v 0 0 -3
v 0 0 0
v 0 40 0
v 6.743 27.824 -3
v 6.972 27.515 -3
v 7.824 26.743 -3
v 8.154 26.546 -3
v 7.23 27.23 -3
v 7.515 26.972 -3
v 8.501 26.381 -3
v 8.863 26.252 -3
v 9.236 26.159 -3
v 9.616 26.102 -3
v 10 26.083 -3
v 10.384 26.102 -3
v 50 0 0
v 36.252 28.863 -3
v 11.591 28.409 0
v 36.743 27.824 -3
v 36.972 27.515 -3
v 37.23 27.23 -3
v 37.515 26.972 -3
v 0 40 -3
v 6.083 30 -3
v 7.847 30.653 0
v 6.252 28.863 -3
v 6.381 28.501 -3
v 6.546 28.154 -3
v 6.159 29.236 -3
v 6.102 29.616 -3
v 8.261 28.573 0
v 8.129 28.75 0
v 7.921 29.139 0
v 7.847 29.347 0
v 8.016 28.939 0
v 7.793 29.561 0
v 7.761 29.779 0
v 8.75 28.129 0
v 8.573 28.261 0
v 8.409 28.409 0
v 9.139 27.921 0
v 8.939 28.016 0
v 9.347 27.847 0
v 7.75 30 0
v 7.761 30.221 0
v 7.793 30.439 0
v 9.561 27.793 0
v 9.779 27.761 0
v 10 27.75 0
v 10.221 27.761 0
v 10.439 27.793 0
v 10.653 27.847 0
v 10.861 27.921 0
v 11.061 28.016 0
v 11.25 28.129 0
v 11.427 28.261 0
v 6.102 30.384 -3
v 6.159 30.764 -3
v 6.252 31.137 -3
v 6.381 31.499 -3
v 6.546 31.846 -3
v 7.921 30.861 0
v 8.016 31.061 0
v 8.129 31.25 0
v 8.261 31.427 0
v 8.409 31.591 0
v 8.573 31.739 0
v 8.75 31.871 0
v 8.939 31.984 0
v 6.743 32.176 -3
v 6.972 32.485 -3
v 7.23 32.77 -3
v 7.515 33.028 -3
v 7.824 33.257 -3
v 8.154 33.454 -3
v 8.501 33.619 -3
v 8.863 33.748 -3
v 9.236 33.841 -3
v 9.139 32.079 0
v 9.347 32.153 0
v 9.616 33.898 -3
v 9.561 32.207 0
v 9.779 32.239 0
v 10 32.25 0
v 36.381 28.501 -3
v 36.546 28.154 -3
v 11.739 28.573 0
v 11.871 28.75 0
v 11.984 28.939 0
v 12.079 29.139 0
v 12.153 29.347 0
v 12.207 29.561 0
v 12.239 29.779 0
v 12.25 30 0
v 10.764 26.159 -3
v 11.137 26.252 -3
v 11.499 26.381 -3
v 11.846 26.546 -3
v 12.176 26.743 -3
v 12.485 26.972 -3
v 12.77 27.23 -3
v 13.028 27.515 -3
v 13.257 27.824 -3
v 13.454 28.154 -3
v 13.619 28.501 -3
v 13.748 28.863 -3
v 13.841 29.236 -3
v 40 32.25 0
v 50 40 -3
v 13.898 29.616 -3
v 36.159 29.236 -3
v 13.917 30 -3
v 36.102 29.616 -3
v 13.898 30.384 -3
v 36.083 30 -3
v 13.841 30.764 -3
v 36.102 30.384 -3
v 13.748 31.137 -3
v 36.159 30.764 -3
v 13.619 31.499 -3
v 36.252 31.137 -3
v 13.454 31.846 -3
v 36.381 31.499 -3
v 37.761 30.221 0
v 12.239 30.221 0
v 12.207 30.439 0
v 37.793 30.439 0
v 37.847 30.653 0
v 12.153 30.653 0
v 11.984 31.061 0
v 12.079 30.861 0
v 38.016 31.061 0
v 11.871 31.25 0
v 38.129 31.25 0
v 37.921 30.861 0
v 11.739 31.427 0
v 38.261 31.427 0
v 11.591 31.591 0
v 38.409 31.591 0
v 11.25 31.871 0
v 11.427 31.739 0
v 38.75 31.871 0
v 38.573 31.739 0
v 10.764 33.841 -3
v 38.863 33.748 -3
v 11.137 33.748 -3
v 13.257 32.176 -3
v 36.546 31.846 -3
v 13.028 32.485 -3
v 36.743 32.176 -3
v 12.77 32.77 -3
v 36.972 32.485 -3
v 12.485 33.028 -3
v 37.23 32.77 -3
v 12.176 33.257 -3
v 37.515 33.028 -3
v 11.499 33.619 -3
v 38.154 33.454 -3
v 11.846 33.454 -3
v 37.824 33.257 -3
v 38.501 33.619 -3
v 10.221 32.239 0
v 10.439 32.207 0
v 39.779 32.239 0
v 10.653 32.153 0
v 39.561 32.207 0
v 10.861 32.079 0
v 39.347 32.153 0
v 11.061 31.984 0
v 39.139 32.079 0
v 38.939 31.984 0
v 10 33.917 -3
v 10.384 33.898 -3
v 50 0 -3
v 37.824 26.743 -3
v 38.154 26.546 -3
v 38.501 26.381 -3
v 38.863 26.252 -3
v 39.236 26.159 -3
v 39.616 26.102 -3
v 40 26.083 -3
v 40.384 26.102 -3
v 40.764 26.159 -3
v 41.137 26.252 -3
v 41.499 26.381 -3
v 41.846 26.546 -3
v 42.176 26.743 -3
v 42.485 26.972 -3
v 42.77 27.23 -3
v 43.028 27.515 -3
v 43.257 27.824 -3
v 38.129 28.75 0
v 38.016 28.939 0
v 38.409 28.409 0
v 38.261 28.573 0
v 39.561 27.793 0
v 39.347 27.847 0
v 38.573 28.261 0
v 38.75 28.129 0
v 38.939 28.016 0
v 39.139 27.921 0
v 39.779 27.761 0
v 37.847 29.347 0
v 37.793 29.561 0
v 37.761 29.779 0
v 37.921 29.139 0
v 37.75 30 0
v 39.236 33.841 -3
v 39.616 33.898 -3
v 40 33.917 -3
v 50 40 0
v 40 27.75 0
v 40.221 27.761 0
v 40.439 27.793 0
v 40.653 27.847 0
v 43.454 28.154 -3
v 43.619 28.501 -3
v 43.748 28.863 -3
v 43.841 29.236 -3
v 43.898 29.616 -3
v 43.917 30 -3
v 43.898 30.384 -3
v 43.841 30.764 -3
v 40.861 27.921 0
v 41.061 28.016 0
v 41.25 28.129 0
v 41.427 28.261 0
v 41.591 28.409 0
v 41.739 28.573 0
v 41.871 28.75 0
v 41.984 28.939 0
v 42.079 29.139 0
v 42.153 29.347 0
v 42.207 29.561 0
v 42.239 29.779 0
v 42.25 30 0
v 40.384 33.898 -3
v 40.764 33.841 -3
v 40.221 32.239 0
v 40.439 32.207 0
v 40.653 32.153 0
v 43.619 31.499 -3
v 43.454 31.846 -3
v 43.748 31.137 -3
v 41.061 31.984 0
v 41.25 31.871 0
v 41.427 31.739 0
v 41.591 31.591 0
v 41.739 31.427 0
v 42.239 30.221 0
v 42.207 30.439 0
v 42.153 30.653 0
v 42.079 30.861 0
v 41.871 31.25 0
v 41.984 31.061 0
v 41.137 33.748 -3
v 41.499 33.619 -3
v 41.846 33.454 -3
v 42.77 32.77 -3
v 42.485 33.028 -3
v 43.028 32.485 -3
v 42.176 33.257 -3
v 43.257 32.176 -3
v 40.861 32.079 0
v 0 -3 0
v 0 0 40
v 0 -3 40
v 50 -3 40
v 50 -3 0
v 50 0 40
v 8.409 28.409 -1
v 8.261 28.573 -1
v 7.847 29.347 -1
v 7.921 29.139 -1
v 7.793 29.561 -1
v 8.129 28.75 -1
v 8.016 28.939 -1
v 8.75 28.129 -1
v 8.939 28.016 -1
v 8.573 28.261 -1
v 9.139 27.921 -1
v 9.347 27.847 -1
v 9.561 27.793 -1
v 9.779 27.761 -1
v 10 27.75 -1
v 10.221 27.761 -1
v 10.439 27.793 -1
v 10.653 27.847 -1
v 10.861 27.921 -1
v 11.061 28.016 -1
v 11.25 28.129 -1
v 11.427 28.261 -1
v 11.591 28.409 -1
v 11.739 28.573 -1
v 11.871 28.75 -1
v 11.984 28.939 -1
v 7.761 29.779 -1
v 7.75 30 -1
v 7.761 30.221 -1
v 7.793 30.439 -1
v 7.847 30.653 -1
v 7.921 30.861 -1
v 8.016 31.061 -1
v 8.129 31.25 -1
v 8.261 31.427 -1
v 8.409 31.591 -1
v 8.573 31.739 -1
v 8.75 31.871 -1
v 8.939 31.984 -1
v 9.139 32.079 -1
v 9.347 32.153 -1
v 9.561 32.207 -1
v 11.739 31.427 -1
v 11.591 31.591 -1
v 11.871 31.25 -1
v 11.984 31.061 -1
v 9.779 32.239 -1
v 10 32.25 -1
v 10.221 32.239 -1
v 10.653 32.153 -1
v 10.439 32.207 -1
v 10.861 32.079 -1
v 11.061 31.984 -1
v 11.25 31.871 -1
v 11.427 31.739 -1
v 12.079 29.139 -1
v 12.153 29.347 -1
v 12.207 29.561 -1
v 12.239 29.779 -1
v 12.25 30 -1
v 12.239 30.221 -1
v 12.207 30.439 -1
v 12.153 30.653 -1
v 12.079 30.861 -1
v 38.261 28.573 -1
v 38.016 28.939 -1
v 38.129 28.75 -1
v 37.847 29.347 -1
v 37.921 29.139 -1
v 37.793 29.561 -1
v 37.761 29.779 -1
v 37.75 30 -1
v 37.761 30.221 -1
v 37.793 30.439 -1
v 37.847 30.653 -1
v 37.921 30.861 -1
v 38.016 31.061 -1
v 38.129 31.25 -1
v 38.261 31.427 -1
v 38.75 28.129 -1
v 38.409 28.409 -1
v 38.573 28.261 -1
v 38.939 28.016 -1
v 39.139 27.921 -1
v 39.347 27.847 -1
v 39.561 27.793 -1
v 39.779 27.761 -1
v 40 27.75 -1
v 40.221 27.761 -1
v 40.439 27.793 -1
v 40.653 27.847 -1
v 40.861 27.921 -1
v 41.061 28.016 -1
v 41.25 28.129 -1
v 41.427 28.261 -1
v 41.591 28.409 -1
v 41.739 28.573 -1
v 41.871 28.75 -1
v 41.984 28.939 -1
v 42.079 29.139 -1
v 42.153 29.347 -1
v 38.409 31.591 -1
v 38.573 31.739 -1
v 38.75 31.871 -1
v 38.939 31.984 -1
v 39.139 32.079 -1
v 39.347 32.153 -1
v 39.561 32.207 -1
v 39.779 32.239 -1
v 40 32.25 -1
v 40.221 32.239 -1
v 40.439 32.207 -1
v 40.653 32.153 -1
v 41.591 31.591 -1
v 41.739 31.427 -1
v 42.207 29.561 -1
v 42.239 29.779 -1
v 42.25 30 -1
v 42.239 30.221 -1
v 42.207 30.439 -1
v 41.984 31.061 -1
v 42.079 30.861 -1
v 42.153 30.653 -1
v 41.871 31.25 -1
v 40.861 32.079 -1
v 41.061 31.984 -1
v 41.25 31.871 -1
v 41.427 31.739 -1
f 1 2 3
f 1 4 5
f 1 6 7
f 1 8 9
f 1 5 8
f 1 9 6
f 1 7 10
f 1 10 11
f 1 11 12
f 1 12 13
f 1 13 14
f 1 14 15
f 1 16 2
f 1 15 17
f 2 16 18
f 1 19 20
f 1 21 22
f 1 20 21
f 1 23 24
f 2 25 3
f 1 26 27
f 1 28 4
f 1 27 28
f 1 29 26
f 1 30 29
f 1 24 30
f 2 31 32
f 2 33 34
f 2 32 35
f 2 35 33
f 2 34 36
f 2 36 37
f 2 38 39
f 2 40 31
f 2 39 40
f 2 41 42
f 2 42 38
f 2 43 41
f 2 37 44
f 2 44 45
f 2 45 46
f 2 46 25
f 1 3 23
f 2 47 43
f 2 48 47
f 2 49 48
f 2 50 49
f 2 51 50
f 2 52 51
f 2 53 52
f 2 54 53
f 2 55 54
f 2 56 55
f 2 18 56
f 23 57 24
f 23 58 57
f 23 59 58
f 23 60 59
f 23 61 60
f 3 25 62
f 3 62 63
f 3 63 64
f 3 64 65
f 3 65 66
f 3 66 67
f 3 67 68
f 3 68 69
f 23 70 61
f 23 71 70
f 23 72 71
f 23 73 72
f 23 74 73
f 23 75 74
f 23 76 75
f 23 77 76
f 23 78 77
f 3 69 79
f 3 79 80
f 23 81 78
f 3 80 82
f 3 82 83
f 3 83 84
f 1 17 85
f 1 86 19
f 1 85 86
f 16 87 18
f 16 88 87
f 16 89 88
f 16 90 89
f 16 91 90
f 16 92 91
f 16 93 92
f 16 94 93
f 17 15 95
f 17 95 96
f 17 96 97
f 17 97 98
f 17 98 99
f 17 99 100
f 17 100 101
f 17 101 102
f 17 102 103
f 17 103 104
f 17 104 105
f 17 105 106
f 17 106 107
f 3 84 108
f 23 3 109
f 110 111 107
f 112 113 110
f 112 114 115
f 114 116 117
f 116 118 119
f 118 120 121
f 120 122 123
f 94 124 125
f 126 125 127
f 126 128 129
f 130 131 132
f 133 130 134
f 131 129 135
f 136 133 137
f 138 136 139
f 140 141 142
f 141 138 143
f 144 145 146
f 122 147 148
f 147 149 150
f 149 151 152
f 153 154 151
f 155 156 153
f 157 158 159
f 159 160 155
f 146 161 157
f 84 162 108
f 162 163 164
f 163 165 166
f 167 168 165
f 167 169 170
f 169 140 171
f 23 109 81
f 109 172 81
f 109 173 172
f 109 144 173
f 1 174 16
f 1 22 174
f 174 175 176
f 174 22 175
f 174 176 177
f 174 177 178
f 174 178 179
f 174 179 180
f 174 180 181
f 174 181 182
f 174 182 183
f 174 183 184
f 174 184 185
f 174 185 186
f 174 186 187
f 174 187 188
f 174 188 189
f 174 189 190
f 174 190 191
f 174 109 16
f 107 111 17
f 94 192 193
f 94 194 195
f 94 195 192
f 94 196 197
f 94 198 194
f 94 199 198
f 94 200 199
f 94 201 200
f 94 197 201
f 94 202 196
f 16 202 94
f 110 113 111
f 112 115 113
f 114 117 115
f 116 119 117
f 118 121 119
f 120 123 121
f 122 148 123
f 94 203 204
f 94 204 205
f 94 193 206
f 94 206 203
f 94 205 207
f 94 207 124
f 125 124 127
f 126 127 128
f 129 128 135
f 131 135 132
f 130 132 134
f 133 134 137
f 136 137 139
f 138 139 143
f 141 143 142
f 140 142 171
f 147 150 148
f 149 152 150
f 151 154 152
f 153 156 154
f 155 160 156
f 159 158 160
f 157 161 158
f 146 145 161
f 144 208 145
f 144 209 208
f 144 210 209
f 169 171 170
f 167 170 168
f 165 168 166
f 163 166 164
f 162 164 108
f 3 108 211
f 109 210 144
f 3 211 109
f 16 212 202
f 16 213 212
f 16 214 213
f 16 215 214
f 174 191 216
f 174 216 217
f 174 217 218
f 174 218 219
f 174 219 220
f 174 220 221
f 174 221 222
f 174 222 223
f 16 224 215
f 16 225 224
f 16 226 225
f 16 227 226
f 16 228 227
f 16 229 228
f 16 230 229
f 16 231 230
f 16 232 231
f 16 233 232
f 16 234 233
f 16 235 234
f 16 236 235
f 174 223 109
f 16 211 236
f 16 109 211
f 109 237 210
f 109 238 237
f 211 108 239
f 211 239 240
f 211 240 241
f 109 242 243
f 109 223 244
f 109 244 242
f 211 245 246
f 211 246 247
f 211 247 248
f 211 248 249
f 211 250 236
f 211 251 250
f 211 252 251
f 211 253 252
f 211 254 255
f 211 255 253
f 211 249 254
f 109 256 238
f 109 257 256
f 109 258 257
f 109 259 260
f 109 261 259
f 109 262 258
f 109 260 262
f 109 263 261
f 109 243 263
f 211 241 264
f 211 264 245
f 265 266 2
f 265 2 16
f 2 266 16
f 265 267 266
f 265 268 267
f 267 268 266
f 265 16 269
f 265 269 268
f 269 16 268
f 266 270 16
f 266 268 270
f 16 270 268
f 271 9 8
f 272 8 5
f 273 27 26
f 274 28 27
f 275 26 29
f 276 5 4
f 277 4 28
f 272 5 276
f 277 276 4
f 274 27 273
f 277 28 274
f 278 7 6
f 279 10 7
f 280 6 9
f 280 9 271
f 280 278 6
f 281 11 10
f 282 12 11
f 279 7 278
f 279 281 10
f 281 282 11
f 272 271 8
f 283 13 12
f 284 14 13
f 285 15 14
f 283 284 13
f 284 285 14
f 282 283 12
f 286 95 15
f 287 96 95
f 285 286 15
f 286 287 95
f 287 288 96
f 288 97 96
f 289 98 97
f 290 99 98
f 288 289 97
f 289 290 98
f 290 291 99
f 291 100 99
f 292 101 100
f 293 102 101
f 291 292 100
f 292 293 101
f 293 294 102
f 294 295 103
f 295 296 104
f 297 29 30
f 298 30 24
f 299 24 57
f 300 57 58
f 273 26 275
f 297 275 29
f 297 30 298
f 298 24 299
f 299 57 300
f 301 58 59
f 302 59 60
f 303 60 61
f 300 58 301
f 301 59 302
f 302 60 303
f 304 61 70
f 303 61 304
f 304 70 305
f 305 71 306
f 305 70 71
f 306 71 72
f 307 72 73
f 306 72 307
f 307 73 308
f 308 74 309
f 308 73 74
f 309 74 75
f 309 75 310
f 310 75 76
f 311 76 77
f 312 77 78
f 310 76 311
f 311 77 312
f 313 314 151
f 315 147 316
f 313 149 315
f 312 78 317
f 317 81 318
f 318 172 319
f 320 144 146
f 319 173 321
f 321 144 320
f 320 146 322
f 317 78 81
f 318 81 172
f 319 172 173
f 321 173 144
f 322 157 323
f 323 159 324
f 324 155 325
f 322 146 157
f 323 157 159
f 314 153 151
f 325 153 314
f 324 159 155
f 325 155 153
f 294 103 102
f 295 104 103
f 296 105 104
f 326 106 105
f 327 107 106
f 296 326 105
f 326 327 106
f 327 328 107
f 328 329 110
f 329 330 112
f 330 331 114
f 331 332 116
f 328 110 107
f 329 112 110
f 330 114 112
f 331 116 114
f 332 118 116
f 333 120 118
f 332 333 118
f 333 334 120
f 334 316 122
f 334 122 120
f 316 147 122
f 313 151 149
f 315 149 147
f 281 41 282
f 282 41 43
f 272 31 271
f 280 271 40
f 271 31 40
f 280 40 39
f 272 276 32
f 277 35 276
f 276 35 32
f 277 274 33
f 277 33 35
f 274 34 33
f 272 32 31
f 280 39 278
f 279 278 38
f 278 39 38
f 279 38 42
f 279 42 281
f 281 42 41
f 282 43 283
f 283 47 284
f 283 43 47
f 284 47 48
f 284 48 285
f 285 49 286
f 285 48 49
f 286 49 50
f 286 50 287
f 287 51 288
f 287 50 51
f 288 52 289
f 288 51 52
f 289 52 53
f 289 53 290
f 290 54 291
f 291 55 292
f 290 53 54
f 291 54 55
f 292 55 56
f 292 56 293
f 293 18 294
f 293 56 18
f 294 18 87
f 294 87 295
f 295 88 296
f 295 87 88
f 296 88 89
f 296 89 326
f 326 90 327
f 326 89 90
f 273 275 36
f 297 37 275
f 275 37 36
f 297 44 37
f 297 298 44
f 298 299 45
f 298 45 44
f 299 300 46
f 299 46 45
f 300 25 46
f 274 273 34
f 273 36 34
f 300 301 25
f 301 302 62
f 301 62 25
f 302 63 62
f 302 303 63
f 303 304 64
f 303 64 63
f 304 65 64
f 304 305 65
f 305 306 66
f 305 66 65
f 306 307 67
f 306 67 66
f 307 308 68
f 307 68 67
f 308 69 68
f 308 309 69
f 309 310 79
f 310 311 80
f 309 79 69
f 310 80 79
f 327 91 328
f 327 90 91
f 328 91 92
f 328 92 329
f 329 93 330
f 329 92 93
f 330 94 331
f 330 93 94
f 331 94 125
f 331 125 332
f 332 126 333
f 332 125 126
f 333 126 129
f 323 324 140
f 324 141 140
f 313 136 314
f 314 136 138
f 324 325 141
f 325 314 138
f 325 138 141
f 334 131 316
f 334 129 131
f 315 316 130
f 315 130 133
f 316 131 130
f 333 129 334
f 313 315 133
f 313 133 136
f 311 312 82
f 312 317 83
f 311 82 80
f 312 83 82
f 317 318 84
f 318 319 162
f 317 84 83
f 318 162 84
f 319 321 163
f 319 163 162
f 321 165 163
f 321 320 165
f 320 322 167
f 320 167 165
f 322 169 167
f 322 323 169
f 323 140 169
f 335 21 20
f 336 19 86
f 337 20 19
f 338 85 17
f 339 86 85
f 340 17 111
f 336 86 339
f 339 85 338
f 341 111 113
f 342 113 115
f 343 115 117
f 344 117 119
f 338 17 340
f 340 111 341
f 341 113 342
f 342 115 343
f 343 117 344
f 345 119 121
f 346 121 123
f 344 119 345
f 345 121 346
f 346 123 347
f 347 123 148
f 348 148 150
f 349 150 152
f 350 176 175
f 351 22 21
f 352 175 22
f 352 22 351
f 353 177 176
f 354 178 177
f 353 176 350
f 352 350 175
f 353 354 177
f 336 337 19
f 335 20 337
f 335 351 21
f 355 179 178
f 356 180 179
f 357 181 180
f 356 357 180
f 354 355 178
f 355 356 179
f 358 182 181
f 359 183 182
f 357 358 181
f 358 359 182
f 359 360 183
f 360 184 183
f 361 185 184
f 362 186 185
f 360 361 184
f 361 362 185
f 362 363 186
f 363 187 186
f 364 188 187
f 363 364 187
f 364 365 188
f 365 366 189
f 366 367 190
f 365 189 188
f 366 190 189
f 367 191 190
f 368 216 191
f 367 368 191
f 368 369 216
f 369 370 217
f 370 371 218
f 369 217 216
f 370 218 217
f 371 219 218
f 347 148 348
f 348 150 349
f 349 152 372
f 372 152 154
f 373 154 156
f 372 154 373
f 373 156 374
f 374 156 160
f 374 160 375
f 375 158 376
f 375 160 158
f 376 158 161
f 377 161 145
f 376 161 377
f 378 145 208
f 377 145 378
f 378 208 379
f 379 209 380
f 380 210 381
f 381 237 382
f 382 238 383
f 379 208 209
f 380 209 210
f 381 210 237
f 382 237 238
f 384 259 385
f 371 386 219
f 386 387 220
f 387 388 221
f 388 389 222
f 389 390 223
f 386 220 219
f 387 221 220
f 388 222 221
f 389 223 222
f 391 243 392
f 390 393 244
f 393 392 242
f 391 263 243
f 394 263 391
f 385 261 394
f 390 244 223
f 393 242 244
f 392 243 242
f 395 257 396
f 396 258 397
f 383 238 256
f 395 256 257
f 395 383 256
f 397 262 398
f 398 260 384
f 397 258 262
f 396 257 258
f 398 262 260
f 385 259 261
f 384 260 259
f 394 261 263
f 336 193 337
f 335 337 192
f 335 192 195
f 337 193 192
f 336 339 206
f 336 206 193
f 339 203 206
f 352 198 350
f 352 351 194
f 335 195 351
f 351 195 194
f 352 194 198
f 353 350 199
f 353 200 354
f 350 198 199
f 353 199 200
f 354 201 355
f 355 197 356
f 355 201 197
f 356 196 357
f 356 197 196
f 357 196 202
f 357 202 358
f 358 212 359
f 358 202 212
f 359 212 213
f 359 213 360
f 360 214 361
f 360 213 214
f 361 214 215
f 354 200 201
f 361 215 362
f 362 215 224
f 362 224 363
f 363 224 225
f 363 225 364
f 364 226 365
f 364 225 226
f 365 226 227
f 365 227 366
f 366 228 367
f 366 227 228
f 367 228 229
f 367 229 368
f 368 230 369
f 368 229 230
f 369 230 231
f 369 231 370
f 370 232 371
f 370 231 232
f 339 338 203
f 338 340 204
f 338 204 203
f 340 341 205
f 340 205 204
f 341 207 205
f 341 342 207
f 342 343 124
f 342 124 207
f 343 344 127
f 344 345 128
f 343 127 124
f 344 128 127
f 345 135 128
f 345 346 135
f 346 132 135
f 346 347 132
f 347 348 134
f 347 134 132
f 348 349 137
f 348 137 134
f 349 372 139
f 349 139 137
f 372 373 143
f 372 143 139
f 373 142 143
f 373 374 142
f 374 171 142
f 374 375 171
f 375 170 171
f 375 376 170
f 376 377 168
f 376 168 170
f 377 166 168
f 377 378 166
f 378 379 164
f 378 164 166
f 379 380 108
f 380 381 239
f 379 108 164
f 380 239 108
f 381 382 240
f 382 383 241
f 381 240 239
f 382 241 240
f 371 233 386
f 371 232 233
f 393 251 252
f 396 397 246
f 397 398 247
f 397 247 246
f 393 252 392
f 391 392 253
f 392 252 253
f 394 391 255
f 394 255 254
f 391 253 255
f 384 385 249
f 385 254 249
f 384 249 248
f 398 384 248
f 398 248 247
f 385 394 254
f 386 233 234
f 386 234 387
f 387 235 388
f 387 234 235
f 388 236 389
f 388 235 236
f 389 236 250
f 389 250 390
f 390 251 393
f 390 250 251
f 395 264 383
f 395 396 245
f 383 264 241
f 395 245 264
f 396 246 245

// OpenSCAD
// L-Bracket (L字金具)
// 内側コーナーが原点、水平面は+Y方向、垂直面は+Z方向

width    = 50;   // 幅 (X方向)
fl_horiz = 40;   // 水平フランジ奥行き (Y方向)
fl_vert  = 40;   // 垂直フランジ高さ (Z方向)
t        = 3;    // 板厚
hole_d   = 4.5;  // 貫通穴径
cs_d     = 8;    // 皿座面径
cs_dep   = 2;    // 皿座面深さ
inset    = 10;   // 縁からの距離
eps      = 0.1;  // 干渉回避用微小値

// 穴のX位置: 幅50mm、縁から10mm内側 → X=10 と X=40
hole_xs = [inset, width - inset]; // [10, 40]

module l_bracket() {
    difference() {
        union() {
            // 水平面: X[0~50], Y[0~40], Z[-3~0]
            translate([0, 0, -t])
                cube([width, fl_horiz, t]);

            // 垂直面: X[0~50], Y[-3~0], Z[0~40]
            translate([0, -t, 0])
                cube([width, t, fl_vert]);
        }

        // --- 水平面の皿穴 ---
        // 外側 = 下面(Z = -t)
        // 皿座面は下(外側)が大径、上(内側)が小径
        // Y位置: 奥の縁(Y=40)から inset=10 内側 → Y=30
        for (x = hole_xs) {
            translate([x, fl_horiz - inset, -t - eps]) {
                // 皿座面(外側=下から): d1=cs_d(下/外), d2=hole_d(上/内)
                cylinder(d1=cs_d, d2=hole_d, h=cs_dep + eps, $fn=64);
                // 残りの貫通穴
                cylinder(d=hole_d, h=t + 2*eps, $fn=64);
            }
        }

        // --- 垂直面の皿穴 ---
        // 外側 = 前面(Y = -t)
        // 皿座面は前(外側)が大径、後(内側)が小径
        // Z位置: 上の縁(Z=40)から inset=10 内側 → Z=30
        for (x = hole_xs) {
            // 前面(外側)から穴を開ける: Y方向に +t 進む
            translate([x, -t - eps, fl_vert - inset]) {
                rotate([90, 0, 0]) {
                    // rotate後: Z方向が -Y方向(穴が内側へ向く)
                    // 皿座面を外側(前面)に: d1=cs_d, d2=hole_d
                    cylinder(d1=cs_d, d2=hole_d, h=cs_dep + eps, $fn=64);
                    // 残りの貫通穴
                    cylinder(d=hole_d, h=t + 2*eps, $fn=64);
                }
            }
        }
    }
}

l_bracket();
